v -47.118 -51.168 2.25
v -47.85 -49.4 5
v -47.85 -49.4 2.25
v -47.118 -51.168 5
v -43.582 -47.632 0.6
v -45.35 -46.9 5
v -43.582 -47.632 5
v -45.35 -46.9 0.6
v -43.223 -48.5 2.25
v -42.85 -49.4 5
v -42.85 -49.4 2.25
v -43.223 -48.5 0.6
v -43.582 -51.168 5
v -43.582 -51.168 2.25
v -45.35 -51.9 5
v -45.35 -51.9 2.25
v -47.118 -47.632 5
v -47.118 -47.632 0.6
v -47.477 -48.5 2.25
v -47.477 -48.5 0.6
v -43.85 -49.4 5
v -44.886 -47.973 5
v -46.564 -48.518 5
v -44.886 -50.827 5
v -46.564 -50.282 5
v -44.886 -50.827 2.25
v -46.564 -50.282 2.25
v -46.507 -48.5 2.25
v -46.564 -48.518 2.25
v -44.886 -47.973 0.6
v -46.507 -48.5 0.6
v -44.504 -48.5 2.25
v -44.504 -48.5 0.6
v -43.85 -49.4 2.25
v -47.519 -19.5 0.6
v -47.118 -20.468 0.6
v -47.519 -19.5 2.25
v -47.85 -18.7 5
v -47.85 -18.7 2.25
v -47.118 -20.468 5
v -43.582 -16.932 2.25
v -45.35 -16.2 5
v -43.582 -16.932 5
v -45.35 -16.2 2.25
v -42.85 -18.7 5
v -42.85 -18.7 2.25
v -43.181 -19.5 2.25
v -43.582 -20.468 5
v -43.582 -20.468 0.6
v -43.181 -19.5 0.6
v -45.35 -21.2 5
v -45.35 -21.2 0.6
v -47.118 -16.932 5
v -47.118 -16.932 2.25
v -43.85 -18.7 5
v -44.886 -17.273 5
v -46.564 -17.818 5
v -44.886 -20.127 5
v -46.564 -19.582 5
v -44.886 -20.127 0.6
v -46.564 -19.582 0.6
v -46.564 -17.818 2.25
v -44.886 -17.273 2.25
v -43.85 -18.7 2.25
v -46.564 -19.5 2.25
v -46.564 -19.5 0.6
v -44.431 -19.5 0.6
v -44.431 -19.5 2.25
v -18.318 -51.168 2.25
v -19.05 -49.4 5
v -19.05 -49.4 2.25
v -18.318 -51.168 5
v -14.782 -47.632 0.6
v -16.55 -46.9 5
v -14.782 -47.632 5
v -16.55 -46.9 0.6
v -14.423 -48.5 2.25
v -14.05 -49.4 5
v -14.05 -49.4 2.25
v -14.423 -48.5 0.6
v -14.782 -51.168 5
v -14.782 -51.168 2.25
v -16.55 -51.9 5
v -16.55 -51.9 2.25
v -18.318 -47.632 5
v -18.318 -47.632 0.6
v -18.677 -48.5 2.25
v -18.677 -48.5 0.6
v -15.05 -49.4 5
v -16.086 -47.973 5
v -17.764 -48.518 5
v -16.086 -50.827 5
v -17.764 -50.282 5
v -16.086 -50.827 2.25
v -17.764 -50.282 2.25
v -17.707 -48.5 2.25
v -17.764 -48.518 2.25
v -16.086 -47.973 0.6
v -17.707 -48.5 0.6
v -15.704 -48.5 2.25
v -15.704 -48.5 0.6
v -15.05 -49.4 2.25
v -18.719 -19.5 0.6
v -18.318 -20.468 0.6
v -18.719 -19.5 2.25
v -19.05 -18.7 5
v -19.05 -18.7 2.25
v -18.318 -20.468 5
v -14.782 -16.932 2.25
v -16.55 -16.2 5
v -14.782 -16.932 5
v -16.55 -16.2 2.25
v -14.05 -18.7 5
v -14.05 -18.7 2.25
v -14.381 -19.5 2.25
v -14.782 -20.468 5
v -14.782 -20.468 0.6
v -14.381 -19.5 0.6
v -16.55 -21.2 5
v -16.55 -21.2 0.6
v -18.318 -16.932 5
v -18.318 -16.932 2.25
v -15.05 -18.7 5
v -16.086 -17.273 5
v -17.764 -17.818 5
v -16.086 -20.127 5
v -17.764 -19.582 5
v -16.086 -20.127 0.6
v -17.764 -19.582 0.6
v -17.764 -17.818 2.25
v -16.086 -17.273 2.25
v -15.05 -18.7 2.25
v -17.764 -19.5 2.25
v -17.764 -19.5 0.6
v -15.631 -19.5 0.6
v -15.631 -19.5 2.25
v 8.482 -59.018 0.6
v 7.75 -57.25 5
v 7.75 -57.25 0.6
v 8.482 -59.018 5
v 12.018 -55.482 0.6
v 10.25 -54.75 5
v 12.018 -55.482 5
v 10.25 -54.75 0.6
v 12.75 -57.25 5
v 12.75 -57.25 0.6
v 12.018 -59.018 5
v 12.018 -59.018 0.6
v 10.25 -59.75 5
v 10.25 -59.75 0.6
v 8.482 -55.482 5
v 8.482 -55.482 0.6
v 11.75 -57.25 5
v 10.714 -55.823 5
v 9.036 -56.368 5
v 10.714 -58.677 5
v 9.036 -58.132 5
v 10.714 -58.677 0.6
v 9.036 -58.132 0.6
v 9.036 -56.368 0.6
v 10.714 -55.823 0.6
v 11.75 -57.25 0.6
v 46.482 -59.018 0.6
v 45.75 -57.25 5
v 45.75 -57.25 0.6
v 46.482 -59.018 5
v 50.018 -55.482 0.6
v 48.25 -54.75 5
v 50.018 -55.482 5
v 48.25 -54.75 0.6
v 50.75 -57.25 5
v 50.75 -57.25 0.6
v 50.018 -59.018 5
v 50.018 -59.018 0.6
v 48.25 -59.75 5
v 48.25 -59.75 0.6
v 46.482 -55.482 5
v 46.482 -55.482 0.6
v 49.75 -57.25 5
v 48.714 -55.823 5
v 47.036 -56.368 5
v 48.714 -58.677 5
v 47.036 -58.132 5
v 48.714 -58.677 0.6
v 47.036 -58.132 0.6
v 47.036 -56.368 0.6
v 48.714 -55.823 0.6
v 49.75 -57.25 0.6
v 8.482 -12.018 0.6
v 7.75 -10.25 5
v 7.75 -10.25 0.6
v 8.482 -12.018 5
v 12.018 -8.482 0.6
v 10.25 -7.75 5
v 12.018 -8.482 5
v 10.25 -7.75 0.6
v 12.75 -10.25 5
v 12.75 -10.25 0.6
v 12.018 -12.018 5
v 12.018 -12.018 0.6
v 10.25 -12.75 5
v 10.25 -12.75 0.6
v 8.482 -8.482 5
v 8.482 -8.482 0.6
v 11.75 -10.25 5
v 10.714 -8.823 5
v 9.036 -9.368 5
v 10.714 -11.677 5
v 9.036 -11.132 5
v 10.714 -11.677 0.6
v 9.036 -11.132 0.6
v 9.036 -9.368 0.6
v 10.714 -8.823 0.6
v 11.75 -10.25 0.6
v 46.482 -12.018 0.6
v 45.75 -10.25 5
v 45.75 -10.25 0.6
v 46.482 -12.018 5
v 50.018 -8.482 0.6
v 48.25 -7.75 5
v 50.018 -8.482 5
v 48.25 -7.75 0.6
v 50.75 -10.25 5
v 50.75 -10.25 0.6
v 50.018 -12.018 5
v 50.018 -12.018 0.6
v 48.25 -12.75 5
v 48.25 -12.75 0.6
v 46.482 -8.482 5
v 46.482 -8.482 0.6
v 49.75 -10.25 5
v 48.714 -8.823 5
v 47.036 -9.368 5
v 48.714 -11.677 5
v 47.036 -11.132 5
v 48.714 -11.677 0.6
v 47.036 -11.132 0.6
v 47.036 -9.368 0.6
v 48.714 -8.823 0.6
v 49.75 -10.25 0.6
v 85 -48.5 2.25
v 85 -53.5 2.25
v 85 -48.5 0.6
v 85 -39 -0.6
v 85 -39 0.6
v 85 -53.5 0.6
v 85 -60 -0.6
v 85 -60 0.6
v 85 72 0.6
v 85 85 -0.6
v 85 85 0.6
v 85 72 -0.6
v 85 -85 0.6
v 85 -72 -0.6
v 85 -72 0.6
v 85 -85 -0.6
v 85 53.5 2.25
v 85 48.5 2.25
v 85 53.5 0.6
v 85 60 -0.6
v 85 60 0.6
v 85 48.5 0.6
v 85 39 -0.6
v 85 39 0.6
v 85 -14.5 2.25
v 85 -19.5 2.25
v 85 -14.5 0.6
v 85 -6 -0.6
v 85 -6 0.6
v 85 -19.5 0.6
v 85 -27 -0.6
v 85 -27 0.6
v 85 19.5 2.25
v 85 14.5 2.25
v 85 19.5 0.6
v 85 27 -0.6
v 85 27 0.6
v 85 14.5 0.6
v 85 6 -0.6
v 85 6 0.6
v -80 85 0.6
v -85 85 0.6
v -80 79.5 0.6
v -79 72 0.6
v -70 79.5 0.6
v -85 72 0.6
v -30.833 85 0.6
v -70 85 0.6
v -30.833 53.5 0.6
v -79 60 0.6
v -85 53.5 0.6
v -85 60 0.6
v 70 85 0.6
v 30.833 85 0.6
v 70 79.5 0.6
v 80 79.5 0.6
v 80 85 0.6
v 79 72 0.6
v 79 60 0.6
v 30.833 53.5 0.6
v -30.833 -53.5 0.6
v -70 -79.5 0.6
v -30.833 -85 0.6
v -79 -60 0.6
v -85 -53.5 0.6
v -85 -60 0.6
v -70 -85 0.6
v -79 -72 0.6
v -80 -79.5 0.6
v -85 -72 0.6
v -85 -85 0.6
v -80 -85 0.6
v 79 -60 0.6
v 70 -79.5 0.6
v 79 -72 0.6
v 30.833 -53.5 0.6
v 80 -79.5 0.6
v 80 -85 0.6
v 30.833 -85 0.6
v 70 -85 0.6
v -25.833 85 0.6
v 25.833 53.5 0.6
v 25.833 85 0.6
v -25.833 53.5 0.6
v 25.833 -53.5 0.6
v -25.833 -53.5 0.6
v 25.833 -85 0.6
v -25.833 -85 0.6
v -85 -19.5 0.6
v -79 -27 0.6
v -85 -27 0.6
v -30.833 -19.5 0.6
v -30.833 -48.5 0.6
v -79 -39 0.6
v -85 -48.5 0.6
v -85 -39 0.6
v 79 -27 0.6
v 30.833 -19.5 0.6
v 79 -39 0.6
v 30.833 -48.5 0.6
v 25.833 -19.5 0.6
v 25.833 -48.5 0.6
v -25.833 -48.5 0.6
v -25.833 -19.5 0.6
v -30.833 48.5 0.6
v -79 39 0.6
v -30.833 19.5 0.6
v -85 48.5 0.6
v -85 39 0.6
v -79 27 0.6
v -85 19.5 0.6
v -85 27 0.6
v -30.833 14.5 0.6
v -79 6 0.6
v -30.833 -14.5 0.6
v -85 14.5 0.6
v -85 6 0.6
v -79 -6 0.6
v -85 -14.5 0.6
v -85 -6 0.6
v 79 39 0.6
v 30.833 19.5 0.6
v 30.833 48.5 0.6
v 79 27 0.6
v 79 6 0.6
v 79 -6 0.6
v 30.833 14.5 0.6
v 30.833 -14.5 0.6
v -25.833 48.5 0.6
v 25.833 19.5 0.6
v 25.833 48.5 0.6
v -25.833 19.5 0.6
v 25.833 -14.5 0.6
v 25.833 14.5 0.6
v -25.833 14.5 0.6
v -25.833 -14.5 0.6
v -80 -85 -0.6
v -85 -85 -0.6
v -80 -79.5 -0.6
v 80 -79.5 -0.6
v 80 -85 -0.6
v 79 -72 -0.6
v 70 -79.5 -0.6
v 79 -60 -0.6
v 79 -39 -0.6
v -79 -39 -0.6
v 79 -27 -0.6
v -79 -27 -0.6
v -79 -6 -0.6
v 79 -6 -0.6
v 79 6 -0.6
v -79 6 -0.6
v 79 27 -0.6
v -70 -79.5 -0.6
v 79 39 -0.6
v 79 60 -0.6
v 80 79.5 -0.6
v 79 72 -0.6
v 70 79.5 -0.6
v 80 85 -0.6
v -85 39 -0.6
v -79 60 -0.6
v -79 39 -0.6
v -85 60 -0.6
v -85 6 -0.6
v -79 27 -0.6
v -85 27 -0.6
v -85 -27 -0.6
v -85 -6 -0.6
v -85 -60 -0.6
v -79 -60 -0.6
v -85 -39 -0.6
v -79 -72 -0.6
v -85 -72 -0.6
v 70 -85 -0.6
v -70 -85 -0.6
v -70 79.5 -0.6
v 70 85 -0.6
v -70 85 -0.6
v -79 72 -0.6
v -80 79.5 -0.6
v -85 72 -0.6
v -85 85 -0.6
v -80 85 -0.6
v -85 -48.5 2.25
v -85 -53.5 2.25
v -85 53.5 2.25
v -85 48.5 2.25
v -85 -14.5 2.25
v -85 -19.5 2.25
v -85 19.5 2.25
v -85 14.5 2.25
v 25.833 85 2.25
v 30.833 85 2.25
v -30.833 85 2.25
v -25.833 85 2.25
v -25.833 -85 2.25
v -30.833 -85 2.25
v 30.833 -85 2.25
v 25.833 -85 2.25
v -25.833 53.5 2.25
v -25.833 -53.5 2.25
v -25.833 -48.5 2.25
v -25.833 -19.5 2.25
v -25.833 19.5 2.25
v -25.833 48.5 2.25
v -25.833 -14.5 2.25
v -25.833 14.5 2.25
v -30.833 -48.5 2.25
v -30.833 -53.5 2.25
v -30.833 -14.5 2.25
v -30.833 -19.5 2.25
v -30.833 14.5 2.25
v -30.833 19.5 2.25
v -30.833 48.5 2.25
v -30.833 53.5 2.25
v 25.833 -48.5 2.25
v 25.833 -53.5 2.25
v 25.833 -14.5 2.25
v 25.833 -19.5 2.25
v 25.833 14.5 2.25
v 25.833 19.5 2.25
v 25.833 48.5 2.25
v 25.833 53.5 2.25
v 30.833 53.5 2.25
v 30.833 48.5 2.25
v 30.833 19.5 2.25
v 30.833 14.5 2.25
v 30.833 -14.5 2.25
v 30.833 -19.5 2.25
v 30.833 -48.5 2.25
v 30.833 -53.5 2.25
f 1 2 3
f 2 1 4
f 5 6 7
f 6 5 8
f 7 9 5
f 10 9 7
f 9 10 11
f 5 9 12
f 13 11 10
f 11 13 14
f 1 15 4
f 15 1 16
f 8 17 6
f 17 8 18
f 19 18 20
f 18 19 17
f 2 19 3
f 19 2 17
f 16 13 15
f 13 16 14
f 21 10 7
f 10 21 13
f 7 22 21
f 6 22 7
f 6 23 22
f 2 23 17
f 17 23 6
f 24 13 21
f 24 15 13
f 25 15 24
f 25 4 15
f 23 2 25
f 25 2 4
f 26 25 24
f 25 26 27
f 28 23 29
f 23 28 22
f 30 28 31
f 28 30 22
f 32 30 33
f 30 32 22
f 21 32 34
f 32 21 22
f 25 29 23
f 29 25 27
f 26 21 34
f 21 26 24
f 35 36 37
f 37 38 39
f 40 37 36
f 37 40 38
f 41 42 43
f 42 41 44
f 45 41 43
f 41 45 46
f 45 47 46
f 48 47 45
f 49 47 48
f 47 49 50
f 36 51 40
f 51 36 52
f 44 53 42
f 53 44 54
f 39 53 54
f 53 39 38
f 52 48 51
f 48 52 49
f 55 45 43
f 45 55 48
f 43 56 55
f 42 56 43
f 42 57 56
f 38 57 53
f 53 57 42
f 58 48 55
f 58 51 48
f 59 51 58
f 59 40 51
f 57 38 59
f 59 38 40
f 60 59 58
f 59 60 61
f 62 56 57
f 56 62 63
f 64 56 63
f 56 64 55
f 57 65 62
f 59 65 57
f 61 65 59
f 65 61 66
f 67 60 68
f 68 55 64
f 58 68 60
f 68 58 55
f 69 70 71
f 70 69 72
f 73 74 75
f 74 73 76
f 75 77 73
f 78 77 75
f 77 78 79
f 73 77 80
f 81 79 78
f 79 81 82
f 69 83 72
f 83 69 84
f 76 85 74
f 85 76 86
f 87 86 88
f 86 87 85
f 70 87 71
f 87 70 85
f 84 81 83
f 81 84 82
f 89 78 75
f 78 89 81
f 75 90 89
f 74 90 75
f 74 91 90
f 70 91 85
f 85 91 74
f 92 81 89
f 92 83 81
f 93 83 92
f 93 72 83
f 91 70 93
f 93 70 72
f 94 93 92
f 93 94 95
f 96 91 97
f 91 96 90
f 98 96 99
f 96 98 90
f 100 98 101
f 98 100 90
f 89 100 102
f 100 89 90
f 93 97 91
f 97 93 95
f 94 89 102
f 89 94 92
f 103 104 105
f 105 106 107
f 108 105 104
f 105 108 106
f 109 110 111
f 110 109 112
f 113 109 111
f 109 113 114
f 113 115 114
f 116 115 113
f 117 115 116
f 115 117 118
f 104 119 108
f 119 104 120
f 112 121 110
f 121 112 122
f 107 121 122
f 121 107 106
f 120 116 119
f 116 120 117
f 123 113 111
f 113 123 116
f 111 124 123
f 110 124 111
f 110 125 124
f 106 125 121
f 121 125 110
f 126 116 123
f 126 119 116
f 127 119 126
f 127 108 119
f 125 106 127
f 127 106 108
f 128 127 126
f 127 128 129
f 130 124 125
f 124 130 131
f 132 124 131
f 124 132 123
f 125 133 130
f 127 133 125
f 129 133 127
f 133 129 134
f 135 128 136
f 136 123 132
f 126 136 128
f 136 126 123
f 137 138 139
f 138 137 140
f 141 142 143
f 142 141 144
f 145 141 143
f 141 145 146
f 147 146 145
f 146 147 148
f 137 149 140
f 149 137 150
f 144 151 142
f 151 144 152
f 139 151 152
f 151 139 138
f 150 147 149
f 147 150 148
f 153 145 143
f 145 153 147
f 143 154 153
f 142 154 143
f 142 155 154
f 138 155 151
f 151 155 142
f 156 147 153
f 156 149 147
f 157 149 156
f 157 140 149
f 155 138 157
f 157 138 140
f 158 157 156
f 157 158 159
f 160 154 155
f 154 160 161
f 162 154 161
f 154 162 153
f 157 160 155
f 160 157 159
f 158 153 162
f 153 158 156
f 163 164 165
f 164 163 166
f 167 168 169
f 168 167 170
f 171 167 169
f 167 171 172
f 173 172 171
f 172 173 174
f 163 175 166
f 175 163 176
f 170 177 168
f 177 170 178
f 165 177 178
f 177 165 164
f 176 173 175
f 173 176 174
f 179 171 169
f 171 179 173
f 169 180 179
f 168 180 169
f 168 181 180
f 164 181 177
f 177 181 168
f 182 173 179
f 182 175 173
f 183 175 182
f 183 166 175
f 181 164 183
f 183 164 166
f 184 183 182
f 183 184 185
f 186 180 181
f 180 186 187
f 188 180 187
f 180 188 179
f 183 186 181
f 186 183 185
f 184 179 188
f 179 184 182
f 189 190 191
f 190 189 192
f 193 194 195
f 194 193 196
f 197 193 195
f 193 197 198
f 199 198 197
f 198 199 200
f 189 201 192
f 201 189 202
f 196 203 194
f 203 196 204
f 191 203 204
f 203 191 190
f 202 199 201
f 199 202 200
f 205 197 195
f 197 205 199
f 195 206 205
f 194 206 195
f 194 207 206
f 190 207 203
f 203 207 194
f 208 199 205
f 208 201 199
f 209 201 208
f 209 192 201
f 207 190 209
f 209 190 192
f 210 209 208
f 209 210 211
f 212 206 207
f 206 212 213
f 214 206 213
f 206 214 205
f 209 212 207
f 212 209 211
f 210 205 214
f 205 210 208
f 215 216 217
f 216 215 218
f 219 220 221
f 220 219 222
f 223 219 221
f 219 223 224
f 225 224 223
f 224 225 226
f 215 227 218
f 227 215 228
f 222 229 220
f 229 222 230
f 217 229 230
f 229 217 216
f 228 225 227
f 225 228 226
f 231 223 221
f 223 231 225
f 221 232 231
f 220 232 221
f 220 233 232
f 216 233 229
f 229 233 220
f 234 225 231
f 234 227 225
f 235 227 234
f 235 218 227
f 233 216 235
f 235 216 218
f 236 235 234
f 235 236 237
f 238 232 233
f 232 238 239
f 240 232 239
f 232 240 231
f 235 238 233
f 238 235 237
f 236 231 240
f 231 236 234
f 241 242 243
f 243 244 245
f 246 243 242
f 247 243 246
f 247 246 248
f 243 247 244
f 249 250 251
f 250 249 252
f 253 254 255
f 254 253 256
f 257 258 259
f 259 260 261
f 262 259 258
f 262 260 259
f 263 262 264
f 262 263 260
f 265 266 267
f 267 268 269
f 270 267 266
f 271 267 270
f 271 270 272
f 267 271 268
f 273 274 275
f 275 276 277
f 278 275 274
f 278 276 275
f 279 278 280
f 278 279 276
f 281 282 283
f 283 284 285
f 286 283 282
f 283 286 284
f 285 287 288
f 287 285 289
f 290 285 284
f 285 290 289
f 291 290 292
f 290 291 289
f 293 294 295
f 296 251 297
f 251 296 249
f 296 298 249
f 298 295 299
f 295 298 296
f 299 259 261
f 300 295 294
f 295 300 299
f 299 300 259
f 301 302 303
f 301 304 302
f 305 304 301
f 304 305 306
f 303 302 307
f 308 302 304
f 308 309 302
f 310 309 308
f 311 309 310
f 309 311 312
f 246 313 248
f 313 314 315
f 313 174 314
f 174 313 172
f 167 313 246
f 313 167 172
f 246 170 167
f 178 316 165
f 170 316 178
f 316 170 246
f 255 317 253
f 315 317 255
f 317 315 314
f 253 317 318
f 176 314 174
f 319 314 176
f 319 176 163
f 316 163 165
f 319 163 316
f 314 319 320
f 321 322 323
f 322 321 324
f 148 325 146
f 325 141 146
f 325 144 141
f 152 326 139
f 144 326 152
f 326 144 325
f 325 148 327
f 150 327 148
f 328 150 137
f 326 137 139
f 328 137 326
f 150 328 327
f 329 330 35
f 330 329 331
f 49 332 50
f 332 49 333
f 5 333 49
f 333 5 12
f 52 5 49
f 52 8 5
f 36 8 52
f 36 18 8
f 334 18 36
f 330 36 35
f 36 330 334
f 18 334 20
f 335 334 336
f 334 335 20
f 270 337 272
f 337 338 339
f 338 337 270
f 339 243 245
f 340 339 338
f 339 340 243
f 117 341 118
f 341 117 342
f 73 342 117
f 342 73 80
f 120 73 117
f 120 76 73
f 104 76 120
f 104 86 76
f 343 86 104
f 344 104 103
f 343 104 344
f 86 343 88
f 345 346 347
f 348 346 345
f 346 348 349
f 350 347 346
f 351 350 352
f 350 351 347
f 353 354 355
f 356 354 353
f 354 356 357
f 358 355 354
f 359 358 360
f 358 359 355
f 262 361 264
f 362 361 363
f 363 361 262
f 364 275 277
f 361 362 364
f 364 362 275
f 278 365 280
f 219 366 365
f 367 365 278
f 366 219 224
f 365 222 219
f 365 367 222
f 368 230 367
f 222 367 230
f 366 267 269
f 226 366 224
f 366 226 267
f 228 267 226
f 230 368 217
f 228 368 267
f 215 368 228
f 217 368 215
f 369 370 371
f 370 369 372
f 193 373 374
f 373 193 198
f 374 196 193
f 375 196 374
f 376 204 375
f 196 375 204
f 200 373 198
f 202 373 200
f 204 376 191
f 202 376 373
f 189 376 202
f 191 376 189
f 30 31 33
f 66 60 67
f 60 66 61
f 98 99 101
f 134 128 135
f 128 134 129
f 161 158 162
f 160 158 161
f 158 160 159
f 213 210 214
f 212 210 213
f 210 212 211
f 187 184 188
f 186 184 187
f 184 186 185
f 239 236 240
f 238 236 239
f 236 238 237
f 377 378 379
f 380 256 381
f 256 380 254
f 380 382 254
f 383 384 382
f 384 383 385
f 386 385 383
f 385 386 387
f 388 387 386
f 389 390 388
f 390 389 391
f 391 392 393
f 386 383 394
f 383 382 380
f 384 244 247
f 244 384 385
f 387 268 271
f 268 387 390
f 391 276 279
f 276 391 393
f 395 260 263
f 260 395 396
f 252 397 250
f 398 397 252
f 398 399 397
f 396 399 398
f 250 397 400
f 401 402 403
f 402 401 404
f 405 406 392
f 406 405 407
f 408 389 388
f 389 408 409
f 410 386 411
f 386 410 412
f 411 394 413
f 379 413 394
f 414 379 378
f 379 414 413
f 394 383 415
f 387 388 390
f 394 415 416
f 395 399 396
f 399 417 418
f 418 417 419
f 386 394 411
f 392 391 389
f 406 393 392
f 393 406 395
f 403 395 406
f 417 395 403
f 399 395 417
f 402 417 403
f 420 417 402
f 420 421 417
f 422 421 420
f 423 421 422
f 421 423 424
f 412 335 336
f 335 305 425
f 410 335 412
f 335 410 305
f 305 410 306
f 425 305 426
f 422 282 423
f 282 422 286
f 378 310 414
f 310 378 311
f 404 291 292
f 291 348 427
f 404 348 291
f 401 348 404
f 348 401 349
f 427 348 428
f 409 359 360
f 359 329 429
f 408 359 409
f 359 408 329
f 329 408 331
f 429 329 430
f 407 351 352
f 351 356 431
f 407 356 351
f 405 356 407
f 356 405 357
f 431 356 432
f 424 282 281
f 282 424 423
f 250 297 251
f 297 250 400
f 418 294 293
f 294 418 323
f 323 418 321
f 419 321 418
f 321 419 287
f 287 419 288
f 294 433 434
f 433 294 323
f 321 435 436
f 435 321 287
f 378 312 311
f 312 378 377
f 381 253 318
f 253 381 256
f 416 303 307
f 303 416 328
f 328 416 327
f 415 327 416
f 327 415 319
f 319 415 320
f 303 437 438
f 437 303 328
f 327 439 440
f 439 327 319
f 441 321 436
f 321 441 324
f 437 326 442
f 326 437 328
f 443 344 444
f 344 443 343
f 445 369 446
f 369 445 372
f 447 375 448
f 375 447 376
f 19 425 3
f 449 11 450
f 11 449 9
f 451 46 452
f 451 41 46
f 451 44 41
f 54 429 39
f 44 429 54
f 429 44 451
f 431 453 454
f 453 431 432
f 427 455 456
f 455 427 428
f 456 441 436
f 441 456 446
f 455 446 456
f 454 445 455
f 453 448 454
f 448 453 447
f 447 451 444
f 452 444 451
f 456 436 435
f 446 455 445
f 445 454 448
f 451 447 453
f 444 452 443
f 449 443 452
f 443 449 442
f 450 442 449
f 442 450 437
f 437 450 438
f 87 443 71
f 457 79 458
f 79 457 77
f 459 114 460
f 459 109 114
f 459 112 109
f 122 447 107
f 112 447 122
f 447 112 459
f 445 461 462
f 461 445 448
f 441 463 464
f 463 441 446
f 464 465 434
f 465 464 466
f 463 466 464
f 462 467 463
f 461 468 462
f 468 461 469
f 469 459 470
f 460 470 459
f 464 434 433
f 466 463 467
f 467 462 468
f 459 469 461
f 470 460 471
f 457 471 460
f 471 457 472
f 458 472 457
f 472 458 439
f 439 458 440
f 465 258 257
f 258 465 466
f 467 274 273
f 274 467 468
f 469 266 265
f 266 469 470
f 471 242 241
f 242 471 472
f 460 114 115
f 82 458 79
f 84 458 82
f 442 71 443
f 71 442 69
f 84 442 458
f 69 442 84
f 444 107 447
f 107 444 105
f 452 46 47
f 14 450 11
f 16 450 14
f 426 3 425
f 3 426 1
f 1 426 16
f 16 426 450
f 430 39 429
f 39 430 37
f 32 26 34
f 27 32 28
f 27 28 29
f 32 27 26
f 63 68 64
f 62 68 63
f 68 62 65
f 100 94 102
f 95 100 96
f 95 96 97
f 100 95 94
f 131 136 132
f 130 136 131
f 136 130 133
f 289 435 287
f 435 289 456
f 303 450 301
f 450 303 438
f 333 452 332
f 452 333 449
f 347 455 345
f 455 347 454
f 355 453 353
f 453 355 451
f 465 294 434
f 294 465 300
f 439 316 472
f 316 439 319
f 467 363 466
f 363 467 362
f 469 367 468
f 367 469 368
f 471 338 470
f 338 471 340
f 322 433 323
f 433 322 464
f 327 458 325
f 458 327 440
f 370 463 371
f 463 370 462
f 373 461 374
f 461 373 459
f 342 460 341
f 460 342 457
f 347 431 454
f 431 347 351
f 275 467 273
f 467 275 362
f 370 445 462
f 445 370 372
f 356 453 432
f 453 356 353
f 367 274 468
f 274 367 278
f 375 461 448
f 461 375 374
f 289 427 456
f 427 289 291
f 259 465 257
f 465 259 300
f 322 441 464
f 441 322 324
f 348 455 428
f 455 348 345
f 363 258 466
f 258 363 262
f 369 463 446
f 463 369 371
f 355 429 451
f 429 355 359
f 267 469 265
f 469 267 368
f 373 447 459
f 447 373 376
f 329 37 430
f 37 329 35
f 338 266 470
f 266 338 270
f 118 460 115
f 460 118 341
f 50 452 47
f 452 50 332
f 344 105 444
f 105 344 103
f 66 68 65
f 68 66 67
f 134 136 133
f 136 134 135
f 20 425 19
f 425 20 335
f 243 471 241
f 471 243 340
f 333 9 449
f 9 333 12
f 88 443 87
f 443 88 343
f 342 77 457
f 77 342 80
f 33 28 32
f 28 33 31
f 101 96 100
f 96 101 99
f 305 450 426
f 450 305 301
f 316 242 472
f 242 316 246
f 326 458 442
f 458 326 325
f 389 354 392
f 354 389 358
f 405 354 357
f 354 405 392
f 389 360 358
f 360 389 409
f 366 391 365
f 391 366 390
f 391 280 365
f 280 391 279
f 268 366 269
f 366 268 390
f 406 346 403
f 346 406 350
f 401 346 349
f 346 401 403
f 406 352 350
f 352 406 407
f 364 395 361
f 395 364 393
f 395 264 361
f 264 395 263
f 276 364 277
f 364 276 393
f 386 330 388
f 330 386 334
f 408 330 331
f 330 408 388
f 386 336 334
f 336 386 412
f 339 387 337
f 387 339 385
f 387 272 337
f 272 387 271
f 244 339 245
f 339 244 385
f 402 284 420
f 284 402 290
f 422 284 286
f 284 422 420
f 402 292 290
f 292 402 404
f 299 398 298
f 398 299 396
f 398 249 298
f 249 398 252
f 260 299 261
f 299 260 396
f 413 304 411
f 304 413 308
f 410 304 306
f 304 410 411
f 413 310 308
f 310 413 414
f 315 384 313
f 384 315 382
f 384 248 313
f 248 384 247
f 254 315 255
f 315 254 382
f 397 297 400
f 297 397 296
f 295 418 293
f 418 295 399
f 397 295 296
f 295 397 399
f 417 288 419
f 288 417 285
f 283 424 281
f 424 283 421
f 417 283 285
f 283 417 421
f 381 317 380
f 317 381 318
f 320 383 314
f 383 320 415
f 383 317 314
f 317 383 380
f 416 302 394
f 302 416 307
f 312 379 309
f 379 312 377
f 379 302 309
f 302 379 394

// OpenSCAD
difference() {
    union() {
        // translate([-30,50,0]) oled_supports();
        // translate([-30,50,0]) oled_supports_v();
        translate([-30,-35,0]) oled_supports_v();
        #translate([30,-35,0]) board_supports();
        // translate([30,-35,0]) board_supports_2();
        cube([170, 170, 1.2], center=true);
        translate([-170/6,0,1]) cube([5,170, 2.5], center=true);
        translate([+170/6,0,1]) cube([5,170, 2.5], center=true);
        translate([0,17,1]) cube([170, 5, 2.5], center=true);
        translate([0,17+34,1]) cube([170, 5, 2.5], center=true);
        translate([0,-17,1]) cube([170, 5, 2.5], center=true);
        translate([0,-17-34,1]) cube([170, 5, 2.5], center=true);
    }
    translate([-170/2,0,-1]) cube([12,12,15], center=true);
    translate([170/2,0,-1]) cube([12,12,15], center=true);
    translate([-170/2,33,-1]) cube([12,12,15], center=true);
    translate([170/2,33,-1]) cube([12,12,15], center=true);
    translate([-170/2,-33,-1]) cube([12,12,15], center=true);
    translate([170/2,-33,-1]) cube([12,12,15], center=true);    
    translate([-170/2,33*2,-1]) cube([12,12,15], center=true);
    translate([170/2,33*2,-1]) cube([12,12,15], center=true);
    translate([-170/2,-33*2,-1]) cube([12,12,15], center=true);
    translate([170/2,-33*2,-1]) cube([12,12,15], center=true);
    
    translate([75,82.5,0]) cube([10,6,2], center=true);
    translate([-75,82.5,0]) cube([10,6,2], center=true);
    translate([75,-82.5,0]) cube([10,6,2], center=true);
    translate([-75,-82.5,0]) cube([10,6,2], center=true);
}

module oled_supports() {
    translate([-(33.7-3)/2,-(31.8-3)/2]) {
        support(3, 5);
        translate([33.7-3,0,0]) support(3, 5);
        translate([0,31.8-3,0]) support(3, 5);
        translate([33.7-3,31.8-3,0]) support(3, 5);
    }
}

module oled_supports_v() {
    translate([-(33.7-3)/2,-(31.8-3)/2]) {
        support(3, 5);
        translate([0,33.7-3,0]) support(3, 5);
        translate([31.8-3,0,0]) support(3, 5);
        translate([31.8-3,33.7-3,0]) support(3, 5);
    }
}

// for pcb rev2 and rev3
module board_supports() {
    translate([-(41.5-2)/2,-(46.5-2)/2]) {
        support(3, 5);
        translate([38,0,0]) support(3, 5);
        translate([0,47,0]) support(3, 5);
        translate([38,47,0]) support(3, 5);
    }
}

// for pcb rev1
module board_supports_2() {
    translate([-(46.5)/2,-(46.5)/2]) {
        support(3, 5);
        translate([46.5,0,0]) support(3, 5);
        translate([0,46.5,0]) support(3, 5);
        translate([46.5,46.5,0]) support(3, 5);
    }
}

module support(in, h) {
    translate([0,0,h/2]) difference() {
        cylinder(h, in/2+1,in/2+1, center=true);
        translate([0,0,-1]) cylinder(h+2, in/2, in/2, center=true);
    }
}
